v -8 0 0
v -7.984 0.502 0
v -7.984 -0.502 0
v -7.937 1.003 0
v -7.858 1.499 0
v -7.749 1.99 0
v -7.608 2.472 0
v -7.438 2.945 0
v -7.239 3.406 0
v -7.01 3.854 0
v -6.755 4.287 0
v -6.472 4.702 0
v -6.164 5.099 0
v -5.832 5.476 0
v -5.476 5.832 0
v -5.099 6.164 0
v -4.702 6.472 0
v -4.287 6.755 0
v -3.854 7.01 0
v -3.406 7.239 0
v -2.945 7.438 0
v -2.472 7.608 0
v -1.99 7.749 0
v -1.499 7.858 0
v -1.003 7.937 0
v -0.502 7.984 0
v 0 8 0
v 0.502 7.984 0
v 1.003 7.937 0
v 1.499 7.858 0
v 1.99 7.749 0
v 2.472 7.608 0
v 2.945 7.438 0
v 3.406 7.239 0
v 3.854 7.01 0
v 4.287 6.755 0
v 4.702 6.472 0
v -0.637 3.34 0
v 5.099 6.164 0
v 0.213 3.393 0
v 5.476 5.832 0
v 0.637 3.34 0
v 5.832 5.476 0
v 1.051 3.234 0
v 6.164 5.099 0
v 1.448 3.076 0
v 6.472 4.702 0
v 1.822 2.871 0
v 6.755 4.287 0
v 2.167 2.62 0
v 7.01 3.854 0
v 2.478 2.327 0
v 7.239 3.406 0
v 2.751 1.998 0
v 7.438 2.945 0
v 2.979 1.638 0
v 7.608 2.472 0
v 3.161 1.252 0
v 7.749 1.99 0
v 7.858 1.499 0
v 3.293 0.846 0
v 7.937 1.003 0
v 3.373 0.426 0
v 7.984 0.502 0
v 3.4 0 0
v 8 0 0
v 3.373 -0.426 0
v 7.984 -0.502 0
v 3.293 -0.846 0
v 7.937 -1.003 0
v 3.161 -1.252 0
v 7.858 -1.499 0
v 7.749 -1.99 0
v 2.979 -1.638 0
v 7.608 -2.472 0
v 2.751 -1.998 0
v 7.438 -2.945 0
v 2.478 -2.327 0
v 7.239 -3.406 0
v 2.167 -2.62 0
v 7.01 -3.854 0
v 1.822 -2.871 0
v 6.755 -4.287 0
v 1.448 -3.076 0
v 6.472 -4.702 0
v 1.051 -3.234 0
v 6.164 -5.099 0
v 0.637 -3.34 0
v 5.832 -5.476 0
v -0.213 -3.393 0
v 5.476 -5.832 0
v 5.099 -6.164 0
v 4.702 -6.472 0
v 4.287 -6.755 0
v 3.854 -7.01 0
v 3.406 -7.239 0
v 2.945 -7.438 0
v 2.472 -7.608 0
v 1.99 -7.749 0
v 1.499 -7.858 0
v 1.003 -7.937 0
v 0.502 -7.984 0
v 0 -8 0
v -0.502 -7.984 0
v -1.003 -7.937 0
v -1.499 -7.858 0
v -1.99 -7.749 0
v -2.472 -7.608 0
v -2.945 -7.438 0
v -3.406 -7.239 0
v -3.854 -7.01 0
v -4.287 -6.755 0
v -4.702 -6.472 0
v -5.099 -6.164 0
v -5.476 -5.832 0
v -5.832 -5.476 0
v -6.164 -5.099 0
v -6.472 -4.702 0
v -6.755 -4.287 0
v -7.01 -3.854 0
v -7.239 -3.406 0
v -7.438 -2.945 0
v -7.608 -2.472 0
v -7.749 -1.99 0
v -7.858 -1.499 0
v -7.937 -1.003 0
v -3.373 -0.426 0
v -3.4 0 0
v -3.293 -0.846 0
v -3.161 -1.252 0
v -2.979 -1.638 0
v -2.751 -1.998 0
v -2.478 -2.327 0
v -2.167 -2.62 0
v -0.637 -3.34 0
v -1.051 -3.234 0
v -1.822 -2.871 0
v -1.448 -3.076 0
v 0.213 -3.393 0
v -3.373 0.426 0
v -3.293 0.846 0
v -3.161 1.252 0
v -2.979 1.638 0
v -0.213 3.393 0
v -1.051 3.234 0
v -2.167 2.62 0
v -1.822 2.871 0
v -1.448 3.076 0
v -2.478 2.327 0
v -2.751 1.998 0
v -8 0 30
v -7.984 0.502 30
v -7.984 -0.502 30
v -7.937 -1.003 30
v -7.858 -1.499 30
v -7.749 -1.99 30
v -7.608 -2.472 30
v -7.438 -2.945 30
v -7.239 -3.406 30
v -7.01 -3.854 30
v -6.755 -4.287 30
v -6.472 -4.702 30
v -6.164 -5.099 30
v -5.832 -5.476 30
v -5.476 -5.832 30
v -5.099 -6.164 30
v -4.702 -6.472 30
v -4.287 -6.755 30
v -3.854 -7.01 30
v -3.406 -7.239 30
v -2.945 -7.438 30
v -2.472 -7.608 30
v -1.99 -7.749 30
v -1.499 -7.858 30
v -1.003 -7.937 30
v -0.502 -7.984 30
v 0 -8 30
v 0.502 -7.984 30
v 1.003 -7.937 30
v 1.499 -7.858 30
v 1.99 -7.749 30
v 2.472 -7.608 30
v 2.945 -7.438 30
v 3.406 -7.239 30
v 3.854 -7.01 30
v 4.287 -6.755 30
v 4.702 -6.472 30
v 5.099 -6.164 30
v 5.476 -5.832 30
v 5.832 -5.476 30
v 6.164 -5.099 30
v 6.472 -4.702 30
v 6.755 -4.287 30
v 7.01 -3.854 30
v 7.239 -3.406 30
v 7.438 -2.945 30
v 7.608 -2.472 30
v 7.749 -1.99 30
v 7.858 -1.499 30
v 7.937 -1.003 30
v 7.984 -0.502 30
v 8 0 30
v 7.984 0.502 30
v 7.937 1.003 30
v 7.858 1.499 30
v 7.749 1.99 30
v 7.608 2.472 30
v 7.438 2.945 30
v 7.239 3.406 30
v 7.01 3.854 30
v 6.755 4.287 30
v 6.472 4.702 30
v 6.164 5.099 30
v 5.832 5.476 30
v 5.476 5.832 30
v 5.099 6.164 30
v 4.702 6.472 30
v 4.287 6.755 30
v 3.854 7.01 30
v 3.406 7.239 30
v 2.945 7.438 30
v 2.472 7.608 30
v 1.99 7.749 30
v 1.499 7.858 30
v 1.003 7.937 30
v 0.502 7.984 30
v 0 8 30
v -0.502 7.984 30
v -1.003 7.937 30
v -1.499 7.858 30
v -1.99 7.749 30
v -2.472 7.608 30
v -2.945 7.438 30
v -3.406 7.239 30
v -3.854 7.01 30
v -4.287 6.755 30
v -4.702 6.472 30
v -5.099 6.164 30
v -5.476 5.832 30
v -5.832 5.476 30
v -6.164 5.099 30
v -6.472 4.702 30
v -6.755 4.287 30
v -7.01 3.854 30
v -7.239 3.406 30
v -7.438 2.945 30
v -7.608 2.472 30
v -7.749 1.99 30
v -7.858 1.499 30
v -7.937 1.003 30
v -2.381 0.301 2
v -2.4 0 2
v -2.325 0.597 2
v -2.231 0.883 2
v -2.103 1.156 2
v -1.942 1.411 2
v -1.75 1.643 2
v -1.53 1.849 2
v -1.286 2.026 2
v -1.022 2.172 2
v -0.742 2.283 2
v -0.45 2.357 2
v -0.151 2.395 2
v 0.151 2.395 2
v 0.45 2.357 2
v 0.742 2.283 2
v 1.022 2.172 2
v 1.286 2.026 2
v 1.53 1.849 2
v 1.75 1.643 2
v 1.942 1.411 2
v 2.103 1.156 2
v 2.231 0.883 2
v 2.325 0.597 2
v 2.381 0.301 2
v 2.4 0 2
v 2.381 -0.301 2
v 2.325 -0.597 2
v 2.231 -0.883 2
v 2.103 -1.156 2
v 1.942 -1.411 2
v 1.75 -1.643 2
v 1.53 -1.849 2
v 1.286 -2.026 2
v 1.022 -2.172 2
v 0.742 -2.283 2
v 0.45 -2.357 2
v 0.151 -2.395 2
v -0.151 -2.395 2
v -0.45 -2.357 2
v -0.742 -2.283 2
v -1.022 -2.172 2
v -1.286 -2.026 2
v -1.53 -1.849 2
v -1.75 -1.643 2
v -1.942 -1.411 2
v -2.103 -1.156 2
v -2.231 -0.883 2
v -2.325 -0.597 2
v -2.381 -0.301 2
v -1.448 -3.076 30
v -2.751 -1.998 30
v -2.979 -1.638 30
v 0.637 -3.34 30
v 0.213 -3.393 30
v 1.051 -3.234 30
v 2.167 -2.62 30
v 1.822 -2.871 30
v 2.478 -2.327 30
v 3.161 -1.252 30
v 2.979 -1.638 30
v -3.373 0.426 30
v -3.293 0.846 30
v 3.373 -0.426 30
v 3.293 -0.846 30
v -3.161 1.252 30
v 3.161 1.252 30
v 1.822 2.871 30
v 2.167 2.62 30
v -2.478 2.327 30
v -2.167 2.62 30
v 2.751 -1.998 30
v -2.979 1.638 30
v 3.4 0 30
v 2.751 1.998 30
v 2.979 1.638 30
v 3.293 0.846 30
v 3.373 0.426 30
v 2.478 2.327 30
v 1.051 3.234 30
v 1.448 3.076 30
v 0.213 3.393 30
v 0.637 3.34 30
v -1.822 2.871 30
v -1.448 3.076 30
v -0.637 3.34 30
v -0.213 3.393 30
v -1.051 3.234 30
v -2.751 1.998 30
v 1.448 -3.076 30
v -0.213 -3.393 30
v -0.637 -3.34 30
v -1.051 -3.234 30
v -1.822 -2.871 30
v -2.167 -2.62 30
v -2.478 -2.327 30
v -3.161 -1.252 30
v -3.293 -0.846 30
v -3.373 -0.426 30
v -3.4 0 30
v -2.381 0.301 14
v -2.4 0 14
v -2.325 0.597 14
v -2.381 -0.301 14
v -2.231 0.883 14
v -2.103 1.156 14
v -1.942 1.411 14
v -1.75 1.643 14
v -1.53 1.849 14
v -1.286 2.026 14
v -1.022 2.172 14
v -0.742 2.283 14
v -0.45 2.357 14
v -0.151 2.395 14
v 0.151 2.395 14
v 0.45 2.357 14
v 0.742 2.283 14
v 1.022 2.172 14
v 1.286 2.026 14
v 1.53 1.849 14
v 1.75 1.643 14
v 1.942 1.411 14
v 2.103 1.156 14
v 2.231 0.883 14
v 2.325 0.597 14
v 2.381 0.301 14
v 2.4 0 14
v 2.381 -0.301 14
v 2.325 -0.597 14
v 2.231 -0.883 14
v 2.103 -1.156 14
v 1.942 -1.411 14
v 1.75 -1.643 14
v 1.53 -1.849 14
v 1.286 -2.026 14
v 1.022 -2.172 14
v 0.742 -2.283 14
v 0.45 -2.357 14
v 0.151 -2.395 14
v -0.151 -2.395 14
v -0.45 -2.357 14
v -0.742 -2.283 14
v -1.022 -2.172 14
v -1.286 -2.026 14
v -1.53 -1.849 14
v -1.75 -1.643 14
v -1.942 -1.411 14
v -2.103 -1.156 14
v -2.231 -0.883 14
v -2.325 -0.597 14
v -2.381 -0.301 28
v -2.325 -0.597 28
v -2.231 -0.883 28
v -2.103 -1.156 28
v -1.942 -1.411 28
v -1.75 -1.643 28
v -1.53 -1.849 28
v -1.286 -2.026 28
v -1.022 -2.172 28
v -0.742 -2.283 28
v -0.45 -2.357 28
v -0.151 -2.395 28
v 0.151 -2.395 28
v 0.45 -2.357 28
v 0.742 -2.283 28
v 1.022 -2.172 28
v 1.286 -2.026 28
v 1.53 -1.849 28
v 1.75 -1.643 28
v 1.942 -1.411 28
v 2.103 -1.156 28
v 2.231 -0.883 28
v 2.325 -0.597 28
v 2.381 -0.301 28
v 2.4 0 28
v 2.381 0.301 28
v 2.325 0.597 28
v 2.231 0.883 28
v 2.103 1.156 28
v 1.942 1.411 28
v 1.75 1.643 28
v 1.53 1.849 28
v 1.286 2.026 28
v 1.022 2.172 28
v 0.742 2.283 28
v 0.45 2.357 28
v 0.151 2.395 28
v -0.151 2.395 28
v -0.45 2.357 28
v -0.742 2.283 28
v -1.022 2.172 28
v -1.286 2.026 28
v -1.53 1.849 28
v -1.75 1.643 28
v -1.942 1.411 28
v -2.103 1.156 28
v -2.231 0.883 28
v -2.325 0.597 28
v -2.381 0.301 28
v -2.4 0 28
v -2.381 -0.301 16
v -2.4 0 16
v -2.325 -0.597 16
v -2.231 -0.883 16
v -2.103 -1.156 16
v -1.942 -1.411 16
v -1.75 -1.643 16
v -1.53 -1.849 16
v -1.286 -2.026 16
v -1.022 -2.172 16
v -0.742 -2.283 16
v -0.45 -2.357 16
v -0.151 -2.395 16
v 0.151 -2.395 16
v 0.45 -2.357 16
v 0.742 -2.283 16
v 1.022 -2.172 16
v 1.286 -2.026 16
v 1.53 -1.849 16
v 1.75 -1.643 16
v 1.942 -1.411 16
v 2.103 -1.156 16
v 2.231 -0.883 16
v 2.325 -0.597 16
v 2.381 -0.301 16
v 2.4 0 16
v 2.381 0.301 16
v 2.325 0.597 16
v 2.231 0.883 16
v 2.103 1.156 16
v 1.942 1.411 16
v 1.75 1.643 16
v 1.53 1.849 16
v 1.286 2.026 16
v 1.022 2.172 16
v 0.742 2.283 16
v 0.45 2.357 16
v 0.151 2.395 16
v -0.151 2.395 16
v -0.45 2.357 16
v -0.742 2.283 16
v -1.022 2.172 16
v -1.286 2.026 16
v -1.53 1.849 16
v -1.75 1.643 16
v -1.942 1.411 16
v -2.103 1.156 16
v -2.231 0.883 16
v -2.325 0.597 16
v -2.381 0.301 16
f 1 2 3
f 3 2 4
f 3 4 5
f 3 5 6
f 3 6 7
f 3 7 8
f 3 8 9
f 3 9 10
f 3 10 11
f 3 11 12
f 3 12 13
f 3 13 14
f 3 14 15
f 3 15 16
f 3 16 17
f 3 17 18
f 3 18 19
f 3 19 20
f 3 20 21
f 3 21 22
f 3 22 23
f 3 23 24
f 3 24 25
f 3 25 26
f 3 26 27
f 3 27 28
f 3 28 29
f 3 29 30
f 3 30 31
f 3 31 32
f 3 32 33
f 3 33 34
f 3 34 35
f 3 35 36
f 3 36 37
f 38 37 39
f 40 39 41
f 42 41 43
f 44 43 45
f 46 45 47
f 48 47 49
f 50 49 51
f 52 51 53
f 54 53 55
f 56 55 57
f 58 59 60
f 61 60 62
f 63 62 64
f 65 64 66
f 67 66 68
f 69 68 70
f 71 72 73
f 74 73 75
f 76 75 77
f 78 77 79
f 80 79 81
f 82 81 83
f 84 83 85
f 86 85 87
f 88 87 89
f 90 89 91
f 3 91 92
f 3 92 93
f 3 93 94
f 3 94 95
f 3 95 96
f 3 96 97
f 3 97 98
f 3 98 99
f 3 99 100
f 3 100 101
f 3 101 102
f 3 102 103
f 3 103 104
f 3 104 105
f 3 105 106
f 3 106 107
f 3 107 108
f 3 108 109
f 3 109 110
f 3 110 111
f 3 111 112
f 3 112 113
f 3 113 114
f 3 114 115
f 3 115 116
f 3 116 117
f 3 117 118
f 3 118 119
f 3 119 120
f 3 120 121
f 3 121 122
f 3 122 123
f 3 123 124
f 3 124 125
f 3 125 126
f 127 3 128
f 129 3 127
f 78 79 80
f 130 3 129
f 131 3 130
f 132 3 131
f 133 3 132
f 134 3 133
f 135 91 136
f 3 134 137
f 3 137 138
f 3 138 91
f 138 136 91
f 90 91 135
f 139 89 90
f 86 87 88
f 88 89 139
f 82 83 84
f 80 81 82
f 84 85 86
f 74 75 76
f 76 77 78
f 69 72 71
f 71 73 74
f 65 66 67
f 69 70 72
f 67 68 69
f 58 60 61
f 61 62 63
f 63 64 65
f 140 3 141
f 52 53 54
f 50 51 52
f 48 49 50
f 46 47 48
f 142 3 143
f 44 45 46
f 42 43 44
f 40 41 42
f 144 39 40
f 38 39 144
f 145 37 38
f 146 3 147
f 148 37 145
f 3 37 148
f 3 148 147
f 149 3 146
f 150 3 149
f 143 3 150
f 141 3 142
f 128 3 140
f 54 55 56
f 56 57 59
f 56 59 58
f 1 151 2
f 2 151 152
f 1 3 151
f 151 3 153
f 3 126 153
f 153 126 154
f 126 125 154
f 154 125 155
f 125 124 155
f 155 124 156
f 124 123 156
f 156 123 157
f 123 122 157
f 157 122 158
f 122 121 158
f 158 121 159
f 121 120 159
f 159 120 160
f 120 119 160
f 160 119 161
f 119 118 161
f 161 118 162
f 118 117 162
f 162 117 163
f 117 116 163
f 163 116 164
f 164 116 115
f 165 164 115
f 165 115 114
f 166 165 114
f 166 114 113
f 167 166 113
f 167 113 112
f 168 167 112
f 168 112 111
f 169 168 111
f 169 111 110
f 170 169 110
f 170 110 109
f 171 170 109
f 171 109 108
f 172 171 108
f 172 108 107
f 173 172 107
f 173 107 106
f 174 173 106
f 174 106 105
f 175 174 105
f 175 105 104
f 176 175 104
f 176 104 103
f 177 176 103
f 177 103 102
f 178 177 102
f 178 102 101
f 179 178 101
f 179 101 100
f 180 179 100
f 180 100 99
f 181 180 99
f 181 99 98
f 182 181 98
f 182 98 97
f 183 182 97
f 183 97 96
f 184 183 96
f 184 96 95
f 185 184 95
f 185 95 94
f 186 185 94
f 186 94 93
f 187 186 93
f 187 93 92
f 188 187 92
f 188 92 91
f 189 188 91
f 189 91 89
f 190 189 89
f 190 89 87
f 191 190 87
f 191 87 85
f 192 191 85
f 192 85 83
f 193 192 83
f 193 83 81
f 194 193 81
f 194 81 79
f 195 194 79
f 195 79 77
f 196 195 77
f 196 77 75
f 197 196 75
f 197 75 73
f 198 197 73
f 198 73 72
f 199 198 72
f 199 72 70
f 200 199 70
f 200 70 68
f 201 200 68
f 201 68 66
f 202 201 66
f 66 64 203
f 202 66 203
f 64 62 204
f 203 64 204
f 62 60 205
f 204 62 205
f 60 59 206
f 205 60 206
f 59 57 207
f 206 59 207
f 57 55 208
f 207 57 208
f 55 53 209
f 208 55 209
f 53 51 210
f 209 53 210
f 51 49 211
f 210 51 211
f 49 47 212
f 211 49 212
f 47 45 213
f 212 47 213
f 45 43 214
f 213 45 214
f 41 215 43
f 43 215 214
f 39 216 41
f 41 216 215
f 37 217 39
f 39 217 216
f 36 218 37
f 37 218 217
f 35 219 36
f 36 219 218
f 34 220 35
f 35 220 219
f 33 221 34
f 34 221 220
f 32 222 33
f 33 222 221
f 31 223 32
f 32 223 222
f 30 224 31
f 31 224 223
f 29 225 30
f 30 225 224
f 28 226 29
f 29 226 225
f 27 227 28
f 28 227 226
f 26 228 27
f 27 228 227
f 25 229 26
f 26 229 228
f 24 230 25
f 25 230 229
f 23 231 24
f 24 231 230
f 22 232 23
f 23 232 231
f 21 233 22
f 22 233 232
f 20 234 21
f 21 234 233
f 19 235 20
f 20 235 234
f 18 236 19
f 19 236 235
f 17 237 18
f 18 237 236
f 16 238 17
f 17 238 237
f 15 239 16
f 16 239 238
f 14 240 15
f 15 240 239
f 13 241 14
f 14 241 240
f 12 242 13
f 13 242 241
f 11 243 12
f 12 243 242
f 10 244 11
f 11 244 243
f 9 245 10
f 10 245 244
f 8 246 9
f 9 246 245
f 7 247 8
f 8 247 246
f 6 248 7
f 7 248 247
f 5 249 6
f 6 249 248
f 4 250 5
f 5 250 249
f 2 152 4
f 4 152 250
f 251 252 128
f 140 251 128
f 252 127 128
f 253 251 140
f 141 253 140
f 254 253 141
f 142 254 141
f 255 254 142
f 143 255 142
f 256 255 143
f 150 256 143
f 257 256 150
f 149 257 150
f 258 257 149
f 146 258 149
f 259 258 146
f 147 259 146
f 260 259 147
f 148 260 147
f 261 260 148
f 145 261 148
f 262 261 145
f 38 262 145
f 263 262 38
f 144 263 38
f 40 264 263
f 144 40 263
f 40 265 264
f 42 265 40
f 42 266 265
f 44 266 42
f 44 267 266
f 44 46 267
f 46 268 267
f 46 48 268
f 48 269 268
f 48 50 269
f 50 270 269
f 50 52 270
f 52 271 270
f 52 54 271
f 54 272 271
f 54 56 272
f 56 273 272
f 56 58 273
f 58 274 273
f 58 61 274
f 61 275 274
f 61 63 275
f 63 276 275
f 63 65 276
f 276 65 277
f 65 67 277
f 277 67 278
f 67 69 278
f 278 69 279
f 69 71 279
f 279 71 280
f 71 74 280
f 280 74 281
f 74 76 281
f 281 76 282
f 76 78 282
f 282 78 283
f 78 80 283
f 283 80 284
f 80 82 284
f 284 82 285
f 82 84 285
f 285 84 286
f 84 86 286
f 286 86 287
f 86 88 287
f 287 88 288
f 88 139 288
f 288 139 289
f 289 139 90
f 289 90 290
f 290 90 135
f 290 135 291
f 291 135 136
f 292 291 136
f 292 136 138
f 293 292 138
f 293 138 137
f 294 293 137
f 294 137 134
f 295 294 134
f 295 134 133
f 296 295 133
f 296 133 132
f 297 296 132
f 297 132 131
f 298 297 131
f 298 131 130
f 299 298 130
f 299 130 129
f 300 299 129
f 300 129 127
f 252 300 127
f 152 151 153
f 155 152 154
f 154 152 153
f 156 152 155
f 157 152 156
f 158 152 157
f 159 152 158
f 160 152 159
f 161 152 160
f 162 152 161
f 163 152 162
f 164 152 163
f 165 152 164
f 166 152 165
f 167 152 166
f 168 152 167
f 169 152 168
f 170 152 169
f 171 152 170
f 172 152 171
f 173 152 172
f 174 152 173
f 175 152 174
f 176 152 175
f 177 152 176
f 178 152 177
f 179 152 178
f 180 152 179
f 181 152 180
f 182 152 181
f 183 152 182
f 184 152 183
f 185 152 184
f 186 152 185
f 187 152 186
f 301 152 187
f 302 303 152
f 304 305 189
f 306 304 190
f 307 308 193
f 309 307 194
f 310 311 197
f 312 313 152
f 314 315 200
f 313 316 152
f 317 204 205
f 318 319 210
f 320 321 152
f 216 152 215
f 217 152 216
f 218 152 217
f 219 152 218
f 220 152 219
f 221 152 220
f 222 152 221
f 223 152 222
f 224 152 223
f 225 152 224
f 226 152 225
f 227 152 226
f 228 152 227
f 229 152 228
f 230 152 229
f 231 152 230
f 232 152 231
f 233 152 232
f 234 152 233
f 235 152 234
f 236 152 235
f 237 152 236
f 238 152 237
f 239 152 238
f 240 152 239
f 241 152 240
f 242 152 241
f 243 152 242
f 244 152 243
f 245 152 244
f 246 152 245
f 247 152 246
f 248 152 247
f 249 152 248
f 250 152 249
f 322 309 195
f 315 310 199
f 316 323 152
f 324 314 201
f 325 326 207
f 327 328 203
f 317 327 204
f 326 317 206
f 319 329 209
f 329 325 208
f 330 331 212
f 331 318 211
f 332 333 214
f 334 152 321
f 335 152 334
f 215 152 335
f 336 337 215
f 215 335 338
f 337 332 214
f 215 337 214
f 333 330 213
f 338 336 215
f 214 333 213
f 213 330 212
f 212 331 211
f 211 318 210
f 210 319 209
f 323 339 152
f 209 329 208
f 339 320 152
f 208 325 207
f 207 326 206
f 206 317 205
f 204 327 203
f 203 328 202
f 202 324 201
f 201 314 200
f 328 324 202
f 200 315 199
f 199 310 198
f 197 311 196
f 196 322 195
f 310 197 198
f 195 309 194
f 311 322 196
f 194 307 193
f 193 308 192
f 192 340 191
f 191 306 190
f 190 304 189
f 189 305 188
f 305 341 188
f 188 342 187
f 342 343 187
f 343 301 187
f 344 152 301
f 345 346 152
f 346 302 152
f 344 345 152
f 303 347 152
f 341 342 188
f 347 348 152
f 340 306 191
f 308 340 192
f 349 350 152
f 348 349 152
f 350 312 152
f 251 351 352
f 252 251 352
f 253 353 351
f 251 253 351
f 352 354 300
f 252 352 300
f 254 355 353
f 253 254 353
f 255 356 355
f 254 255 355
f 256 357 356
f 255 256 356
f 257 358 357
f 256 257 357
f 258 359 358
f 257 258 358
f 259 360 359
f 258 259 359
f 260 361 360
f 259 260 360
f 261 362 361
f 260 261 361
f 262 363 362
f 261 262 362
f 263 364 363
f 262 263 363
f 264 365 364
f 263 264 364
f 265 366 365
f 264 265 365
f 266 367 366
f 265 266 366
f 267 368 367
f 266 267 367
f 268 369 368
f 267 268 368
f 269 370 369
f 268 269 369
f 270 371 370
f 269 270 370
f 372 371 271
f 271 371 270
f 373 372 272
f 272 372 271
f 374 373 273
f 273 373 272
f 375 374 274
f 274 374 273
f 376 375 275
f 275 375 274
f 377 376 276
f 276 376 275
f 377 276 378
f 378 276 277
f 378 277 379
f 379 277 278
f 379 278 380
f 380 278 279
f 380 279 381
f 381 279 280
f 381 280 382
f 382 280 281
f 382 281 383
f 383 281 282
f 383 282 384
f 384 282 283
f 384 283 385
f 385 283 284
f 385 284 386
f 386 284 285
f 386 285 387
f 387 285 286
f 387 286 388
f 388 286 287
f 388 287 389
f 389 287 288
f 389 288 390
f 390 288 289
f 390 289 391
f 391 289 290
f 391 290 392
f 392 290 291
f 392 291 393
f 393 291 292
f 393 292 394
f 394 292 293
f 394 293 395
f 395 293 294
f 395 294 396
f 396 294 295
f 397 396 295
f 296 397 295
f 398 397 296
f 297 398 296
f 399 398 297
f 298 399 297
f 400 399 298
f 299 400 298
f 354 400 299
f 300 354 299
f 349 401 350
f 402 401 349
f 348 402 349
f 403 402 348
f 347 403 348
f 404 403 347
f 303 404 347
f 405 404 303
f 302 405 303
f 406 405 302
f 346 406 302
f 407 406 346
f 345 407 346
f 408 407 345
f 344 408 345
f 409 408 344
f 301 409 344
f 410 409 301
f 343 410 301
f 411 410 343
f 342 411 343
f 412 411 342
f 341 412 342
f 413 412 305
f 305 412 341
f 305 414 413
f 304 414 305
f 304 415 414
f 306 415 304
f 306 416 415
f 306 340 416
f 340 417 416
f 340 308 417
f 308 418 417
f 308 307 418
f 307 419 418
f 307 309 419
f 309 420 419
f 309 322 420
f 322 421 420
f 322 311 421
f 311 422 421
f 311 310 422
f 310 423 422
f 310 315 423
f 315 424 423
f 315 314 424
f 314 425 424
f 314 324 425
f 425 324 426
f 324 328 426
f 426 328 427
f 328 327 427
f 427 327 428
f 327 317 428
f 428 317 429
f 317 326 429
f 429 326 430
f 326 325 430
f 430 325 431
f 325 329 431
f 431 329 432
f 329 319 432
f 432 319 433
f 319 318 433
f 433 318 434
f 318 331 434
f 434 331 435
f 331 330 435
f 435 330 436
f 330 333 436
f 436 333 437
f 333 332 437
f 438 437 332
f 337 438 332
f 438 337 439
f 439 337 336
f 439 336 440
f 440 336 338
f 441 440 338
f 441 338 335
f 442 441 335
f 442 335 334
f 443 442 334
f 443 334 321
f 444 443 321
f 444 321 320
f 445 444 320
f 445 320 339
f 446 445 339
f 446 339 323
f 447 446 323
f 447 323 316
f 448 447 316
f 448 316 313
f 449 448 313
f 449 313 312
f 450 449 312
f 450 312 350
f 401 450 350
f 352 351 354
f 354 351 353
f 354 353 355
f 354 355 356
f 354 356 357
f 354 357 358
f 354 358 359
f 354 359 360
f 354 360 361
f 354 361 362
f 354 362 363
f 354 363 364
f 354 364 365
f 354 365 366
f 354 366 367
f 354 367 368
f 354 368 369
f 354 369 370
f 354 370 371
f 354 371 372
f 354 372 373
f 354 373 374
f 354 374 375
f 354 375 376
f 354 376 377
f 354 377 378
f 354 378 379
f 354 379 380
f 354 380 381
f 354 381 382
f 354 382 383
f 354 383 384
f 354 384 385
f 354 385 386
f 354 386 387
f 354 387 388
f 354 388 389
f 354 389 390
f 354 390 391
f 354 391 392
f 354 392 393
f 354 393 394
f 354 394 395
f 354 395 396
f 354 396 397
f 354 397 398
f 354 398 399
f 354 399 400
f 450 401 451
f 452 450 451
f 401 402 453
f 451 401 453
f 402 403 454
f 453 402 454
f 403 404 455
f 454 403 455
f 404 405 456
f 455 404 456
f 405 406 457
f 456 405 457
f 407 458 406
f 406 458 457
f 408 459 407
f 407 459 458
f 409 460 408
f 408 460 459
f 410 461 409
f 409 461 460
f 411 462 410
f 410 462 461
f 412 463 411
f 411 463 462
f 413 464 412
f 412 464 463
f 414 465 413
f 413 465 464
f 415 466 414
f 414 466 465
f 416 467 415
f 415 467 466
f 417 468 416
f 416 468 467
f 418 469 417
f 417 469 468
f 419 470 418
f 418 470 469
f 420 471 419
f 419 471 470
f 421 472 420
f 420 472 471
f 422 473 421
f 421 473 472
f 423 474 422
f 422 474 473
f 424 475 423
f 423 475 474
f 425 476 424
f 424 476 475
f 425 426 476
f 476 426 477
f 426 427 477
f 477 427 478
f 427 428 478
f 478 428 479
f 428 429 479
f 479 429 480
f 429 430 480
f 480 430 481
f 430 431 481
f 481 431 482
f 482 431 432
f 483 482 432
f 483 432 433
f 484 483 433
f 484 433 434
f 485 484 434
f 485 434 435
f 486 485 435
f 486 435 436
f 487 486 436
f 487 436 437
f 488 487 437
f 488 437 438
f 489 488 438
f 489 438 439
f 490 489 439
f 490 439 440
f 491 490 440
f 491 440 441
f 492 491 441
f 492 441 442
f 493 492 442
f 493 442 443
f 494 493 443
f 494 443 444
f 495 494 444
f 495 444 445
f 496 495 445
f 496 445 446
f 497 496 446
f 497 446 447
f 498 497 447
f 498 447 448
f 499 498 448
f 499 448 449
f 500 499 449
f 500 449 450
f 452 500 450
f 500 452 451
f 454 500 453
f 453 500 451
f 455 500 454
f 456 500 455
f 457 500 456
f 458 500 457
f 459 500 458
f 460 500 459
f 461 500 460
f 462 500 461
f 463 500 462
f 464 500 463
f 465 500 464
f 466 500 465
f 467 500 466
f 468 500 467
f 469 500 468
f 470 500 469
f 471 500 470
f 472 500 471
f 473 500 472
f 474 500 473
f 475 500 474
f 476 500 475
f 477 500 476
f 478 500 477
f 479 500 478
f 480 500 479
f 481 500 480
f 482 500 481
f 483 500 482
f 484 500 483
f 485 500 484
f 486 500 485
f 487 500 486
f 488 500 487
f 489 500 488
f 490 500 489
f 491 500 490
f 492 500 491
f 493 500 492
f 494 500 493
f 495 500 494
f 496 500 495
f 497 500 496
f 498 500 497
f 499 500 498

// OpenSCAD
external_diam=16;
top_diam=4.8;
height=30;

module couplage(){
	difference(){
		cylinder(r=external_diam/2, h=height, $fn=100);
		
		//trou central général
		translate([0, 0,-5]){cylinder(r=top_diam/2, h=height+10, $fn=50);}

		//biseaux haut et bas pour simplifier montage
		translate([0, 0,height-2]){cylinder(r1=top_diam/2, r2=top_diam/2+1, h=2, $fn=50);}
		cylinder(r1=top_diam/2+1, r2=top_diam/2, h=2, $fn=50);
		
	}
	//séparation au milieu (pas besoin de régler, on enfonce tout à fond jusqu'à la butée)
	translate([0, 0,height/2-1]){cylinder(r=external_diam/2-1, h=2, $fn=50);}

}

couplage();
